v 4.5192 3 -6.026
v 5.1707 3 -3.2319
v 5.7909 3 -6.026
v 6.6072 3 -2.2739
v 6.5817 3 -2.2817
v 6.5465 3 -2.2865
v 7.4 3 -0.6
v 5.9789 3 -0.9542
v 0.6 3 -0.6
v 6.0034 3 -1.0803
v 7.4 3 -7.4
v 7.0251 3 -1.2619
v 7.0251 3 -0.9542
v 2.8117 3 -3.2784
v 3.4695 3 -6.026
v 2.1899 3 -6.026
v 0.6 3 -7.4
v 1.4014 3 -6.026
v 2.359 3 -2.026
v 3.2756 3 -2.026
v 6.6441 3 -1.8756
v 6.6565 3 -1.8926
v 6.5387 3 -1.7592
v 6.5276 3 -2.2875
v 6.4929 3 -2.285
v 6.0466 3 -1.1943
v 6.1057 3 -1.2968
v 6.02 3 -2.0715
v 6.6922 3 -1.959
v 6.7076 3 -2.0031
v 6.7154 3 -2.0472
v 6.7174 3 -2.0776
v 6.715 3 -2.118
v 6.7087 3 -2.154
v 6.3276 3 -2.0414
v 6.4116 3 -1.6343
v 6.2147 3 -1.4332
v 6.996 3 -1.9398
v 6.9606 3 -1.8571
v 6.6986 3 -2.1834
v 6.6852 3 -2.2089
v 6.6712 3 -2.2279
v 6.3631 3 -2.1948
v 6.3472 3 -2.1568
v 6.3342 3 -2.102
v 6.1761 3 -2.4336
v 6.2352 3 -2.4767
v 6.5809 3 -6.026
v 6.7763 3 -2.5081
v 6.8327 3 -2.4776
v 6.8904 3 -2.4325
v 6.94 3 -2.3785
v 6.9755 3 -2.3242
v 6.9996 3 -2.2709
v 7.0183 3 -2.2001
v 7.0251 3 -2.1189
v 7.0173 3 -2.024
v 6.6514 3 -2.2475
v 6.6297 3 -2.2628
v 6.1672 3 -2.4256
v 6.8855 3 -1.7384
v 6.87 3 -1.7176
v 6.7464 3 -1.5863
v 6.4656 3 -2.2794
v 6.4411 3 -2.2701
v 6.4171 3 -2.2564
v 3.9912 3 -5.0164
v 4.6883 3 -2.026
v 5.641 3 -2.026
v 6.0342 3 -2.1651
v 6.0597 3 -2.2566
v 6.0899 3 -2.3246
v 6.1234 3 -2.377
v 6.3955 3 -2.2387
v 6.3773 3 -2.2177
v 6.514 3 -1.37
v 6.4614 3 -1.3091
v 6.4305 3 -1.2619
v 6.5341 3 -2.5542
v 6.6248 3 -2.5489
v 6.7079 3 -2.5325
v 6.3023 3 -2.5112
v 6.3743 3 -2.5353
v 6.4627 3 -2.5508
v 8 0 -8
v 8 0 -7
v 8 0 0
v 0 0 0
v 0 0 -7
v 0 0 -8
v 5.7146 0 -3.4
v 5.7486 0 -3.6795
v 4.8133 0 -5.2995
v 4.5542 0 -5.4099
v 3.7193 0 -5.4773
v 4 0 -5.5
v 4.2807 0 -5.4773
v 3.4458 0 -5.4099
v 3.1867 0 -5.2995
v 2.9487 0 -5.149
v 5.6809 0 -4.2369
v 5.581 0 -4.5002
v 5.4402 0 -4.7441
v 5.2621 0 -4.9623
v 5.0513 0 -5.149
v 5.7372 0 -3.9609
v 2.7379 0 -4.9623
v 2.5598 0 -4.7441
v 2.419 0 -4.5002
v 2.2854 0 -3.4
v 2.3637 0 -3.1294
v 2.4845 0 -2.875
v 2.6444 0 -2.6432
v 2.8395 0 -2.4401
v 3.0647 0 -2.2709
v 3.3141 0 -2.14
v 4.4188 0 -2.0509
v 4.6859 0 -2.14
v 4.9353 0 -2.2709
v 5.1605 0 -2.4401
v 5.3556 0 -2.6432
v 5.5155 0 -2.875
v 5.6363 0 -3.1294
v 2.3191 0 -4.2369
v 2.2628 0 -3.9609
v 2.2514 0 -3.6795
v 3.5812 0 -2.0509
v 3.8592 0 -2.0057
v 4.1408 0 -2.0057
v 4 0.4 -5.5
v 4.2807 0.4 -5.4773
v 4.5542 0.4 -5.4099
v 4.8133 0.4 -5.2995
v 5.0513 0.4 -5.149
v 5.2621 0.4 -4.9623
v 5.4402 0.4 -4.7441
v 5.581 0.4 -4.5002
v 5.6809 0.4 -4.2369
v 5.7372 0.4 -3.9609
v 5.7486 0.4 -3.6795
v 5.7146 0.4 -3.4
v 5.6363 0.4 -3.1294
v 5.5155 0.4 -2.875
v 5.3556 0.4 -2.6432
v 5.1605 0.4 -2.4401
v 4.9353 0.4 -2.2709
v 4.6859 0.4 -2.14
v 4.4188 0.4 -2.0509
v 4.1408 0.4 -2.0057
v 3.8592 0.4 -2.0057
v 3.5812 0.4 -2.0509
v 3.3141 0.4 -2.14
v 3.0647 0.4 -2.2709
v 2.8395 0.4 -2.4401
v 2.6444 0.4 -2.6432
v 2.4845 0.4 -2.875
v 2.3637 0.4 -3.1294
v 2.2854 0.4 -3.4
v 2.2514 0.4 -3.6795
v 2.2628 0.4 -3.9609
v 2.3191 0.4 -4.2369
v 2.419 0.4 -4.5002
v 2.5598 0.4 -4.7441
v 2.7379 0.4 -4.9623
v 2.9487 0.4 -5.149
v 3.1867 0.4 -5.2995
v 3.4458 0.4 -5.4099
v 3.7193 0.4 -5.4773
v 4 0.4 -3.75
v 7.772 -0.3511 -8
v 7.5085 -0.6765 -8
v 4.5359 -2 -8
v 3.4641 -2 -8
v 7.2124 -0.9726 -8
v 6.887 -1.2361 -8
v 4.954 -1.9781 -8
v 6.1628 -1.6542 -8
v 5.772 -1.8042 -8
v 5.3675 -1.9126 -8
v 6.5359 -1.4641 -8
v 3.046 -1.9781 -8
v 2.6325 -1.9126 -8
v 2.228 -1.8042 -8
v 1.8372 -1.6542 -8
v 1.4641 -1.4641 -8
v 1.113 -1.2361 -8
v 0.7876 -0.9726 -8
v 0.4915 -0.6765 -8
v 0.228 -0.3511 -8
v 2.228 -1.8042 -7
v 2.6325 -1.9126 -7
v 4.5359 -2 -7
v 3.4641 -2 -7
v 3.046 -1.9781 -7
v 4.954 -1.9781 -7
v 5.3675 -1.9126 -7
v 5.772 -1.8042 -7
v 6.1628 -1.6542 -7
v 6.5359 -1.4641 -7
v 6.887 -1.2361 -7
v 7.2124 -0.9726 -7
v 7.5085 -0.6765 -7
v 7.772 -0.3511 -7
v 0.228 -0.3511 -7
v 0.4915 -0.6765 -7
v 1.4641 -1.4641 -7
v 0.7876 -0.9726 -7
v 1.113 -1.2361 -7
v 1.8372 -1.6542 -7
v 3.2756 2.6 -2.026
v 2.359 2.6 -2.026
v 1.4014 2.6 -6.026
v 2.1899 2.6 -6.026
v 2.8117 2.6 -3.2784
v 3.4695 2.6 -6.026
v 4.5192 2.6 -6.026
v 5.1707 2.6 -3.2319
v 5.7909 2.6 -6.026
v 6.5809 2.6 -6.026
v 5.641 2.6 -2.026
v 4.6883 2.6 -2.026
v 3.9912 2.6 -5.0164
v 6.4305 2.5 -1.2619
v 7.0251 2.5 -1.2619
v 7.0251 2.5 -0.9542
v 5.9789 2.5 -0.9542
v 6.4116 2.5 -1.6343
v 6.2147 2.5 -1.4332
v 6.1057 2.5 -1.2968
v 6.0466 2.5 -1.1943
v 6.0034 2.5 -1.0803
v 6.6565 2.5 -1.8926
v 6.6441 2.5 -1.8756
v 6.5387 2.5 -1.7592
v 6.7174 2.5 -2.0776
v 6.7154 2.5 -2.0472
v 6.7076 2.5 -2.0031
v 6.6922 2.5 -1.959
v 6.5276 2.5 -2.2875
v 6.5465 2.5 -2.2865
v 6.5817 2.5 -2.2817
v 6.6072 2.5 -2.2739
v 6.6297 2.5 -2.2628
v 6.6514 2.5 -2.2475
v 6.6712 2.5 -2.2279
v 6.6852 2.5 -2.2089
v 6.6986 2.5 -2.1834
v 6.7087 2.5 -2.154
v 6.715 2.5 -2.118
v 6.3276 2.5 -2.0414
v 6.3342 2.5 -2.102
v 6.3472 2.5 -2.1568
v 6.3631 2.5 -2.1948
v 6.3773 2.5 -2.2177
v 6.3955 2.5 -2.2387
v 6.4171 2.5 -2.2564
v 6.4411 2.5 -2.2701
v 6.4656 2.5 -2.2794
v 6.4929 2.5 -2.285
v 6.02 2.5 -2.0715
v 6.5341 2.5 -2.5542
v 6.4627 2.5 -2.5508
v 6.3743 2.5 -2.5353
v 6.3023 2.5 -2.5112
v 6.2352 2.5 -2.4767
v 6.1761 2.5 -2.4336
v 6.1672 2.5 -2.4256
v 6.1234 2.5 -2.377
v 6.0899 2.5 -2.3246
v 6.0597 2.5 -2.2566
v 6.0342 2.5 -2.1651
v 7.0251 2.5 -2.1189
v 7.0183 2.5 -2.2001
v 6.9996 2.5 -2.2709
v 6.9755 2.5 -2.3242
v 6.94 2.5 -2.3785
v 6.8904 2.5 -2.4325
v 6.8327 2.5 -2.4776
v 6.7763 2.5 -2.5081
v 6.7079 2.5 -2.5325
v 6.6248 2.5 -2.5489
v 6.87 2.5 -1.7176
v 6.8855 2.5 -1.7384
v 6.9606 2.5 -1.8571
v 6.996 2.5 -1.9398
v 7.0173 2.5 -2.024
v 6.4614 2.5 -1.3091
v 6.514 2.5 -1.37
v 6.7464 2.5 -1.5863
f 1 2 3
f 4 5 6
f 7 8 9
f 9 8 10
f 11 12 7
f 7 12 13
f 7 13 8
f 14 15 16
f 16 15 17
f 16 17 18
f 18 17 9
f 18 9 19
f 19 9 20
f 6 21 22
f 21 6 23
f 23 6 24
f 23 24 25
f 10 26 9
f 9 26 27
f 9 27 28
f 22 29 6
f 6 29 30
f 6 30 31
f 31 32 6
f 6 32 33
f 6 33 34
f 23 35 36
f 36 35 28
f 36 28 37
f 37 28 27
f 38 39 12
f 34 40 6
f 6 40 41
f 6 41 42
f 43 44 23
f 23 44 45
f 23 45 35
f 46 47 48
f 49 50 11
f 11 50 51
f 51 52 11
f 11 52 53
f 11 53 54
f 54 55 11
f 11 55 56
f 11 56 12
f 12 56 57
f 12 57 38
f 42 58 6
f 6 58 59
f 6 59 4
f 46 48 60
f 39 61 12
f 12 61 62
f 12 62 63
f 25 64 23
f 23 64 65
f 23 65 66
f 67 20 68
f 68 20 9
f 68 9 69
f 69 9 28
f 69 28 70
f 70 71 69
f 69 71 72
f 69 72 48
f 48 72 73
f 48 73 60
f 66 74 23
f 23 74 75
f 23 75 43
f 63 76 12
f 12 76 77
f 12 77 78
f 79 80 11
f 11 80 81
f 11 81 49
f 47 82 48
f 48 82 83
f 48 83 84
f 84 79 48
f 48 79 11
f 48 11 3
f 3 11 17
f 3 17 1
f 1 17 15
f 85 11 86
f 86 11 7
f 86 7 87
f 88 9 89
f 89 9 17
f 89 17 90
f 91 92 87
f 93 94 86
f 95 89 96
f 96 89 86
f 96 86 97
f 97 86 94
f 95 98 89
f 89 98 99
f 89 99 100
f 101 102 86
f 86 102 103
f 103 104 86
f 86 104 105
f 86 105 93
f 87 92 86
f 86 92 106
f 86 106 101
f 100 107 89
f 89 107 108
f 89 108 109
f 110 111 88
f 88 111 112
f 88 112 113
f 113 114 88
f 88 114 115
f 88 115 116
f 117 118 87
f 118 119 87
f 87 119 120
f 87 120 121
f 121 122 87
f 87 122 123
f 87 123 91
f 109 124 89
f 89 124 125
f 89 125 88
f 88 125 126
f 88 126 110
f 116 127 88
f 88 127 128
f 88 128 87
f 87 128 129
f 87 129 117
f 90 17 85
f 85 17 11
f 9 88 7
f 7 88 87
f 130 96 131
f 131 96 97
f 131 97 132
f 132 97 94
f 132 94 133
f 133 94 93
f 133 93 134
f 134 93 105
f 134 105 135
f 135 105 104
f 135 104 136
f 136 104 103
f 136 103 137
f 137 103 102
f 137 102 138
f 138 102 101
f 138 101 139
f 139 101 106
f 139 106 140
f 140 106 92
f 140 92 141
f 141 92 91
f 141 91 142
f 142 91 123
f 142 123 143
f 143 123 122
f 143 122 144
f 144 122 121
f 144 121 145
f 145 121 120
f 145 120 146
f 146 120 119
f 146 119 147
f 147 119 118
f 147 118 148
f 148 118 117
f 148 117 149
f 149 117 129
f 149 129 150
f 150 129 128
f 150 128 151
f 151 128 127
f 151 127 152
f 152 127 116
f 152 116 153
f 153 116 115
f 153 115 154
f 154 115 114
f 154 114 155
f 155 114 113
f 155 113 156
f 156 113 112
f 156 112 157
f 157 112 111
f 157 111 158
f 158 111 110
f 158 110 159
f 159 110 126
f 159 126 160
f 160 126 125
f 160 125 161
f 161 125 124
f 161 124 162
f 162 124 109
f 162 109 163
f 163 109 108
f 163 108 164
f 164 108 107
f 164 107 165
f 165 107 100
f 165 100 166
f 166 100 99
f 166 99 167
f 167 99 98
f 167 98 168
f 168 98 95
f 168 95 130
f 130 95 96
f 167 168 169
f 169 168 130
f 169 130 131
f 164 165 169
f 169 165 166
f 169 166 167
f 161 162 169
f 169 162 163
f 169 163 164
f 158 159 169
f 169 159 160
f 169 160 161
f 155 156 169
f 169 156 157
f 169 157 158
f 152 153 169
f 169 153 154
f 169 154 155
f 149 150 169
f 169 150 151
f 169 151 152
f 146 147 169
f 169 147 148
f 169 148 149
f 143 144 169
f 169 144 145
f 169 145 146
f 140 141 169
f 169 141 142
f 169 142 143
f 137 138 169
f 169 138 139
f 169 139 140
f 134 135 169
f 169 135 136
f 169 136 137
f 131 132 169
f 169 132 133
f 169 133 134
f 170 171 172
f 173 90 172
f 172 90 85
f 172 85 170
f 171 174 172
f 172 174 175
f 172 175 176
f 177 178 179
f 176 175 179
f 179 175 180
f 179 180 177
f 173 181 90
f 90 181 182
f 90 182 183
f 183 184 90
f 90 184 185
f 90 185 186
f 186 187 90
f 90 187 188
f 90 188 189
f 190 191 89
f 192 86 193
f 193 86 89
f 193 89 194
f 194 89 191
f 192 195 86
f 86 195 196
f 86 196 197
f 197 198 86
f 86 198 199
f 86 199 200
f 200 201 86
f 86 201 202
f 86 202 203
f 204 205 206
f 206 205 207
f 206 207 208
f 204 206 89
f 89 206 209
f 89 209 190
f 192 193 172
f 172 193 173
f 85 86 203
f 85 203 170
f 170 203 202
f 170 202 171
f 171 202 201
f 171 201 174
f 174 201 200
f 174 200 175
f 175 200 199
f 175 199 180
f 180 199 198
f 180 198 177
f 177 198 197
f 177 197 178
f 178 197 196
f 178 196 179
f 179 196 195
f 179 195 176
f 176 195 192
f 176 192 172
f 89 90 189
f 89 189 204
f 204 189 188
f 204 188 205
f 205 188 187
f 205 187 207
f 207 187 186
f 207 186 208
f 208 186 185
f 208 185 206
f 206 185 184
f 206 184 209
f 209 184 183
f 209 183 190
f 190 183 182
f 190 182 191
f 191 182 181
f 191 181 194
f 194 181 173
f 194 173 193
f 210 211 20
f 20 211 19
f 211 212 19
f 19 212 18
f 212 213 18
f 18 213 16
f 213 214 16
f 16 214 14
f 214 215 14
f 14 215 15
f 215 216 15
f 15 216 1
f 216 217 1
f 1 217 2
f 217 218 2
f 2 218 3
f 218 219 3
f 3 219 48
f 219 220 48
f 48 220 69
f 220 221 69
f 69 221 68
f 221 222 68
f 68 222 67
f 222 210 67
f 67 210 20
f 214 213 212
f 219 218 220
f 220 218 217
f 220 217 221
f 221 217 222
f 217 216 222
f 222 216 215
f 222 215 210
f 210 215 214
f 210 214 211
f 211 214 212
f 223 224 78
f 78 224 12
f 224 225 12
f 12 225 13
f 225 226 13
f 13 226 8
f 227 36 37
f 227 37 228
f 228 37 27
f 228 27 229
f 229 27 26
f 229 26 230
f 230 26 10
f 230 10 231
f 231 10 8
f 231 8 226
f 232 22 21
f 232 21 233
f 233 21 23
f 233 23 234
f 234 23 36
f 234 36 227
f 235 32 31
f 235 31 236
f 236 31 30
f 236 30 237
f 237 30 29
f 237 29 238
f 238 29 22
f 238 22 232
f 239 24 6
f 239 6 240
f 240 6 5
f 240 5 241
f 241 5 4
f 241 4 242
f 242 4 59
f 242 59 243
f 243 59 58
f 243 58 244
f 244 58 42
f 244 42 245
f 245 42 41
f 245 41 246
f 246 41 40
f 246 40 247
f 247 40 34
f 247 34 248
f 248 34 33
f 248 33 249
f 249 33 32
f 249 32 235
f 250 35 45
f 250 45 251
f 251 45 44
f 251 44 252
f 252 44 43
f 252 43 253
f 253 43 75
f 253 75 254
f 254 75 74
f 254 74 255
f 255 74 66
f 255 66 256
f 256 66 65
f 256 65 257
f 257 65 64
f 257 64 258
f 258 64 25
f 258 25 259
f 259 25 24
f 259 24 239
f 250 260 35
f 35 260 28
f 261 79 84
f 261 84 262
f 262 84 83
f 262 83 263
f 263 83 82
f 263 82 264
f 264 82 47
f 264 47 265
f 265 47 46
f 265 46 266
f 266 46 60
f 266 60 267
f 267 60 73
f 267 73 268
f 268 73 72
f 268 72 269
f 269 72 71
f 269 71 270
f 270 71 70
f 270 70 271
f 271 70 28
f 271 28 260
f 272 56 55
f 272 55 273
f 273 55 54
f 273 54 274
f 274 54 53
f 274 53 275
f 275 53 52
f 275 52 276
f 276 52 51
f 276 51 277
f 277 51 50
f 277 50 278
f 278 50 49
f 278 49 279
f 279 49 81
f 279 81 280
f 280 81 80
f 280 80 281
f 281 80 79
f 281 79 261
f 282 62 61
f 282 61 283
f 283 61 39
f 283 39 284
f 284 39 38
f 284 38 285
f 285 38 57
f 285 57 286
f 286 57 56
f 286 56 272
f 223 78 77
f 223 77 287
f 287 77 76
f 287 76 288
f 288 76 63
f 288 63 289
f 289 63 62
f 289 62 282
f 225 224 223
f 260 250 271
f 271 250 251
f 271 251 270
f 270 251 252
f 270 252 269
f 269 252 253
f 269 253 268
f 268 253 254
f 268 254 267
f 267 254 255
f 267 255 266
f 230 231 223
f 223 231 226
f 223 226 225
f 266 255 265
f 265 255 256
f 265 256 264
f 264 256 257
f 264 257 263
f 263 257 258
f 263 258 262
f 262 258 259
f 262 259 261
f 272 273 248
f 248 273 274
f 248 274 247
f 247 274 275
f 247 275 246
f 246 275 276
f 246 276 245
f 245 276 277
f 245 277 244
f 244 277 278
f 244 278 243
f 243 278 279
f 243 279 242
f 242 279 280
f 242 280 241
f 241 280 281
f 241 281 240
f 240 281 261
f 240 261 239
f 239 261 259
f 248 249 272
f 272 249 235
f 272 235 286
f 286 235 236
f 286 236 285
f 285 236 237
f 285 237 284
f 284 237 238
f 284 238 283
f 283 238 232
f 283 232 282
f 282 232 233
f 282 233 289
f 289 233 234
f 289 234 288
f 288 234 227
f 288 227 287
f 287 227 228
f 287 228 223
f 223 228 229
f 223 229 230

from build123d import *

# Parameters (mm, degrees)
SKETCH1_W               = 8
SKETCH1_H               = 8
BOSS_EXTRUDE1_DEPTH     = 3
CUT_EXTRUDE1_DEPTH      = 12.704699911
CUT_EXTRUDE1_DEPTH_BACK = 12.704699911
CUT_EXTRUDE2_DEPTH      = 11
SKETCH4_R               = 1.75
CUT_EXTRUDE3_DEPTH      = 0.4
SKETCH5_W               = 8
SKETCH5_H               = 1
BOSS_EXTRUDE2_DEPTH     = 2
FILLET1_R               = 4
CUT_EXTRUDE4_DEPTH      = 0.4
CUT_EXTRUDE5_DEPTH      = 0.5


with BuildPart() as part:
    # Sketch1 → Boss-Extrude1 (new body)
    with BuildSketch(Plane(origin=(0, 0, 0), x_dir=(1, 0, 0), z_dir=(0, 1, 0))):
        with Locations((4, 4)):
            Rectangle(SKETCH1_W, SKETCH1_H)
    extrude(amount=BOSS_EXTRUDE1_DEPTH)

    # Sketch2 → Cut-Extrude1 (cut, two sides: drawn at the far end of the back side and taken through both)
    with BuildSketch(Plane.XY.offset(-CUT_EXTRUDE1_DEPTH_BACK)):
        Polygon((0, 0), (0.6, 3), (0, 3), align=None)
        Polygon((8, 0), (7.4, 3), (8, 3), align=None)
    extrude(amount=CUT_EXTRUDE1_DEPTH + CUT_EXTRUDE1_DEPTH_BACK, mode=Mode.SUBTRACT)

    # Sketch3 → Cut-Extrude2 (cut)
    with BuildSketch(Plane(origin=(0, 0, 0), x_dir=(0, 0, -1), z_dir=(1, 0, 0))):
        Polygon((0, 0), (0.6, 3), (0, 3), align=None)
        Polygon((8, 3), (7.4, 3), (8, 0), align=None)
    extrude(amount=CUT_EXTRUDE2_DEPTH, mode=Mode.SUBTRACT)

    # Sketch4 → Cut-Extrude3 (cut)
    with BuildSketch(Plane.XZ):
        with Locations(Location((4, -3.75, 0), (0, 0, 270))):
            Circle(SKETCH4_R)
    extrude(amount=-CUT_EXTRUDE3_DEPTH, mode=Mode.SUBTRACT)

    # Sketch5 → Boss-Extrude2 (add)
    with BuildSketch(Plane.XZ):
        with Locations((4, -7.5)):
            Rectangle(SKETCH5_W, SKETCH5_H)
    extrude(amount=BOSS_EXTRUDE2_DEPTH)

    # Fillet1
    # the kernel refuses this fillet: 4 mm, written as the material it takes off along each edge
    with BuildSketch(Plane(origin=(8, -2, -16.660254038), x_dir=(0, 1, 0), z_dir=(0, 0, 1)), Plane(origin=(0, -2, 1.660254038), x_dir=(0, 1, 0), z_dir=(0, 0, -1))) as fillet1_piece_1:
        with BuildLine():
            CenterArc((4, 3.464101615), FILLET1_R, 180, 60)
            Line((0, 3.464101615), (-0.08, 3.464101615))
            Line((-0.08, 3.464101615), (-0.08, 0))
            Line((-0.08, 0), (0, -0.08))
            ThreePointArc((0, -0.08), (1, -0.08), (1.96, -0.069282032))
            Line((1.96, -0.069282032), (2, 0))
        make_face()
    extrude(amount=18.320508076, mode=Mode.SUBTRACT)

    # Sketch6 → Cut-Extrude4 (cut)
    with BuildSketch(Plane(origin=(0, 3, 0), x_dir=(1, 0, 0), z_dir=(0, 1, 0))):
        Polygon((2.358967796, 2.025988971), (1.401435745, 6.025988971), (2.189897284, 6.025988971), (2.811692155, 3.278392817), (3.469544719, 6.025988971), (4.519224207, 6.025988971), (5.170666514, 3.231918458), (5.790858822, 6.025988971), (6.580922925, 6.025988971), (5.641019078, 2.025988971), (4.688294719, 2.025988971), (3.991179335, 5.016373586), (3.275634463, 2.025988971), align=None)
    extrude(amount=-CUT_EXTRUDE4_DEPTH, mode=Mode.SUBTRACT)

    # Sketch7 → Cut-Extrude5 (cut)
    with BuildSketch(Plane(origin=(0, 3, 0), x_dir=(1, 0, 0), z_dir=(0, 1, 0))):
        with BuildLine():
            Line((7.025079926, 1.261869909), (7.025079926, 0.954177602))
            Line((7.025079926, 0.954177602), (5.978926079, 0.954177602))
            add(Edge.make_bspline(
                [(5.978926079, 0.954177602), (5.982468114, 0.980474374), (5.989550197, 1.033053173), (6.011445466, 1.109857564), (6.040668149, 1.184805528), (6.072383822, 1.245794978), (6.103928572, 1.294889387), (6.132549124, 1.335117725), (6.166692393, 1.37791895), (6.205862922, 1.423638586), (6.249844239, 1.472419552), (6.298964472, 1.524080492), (6.353457933, 1.578374089), (6.391795053, 1.615242112), (6.411618387, 1.634305807)],
                knots=[0, 0, 0, 0, 1.156289446, 2.311930546, 3.473459201, 4.661751613, 5.303057008, 6.018253237, 6.81459331, 7.690699809, 8.644447906, 9.679642995, 10.800191253, 12, 12, 12, 12], degree=3))
            add(Edge.make_bspline(
                [(6.411618387, 1.634305807), (6.427437635, 1.649575712), (6.457552822, 1.678645113), (6.500436909, 1.720271317), (6.538136439, 1.758537631), (6.571439659, 1.79245241), (6.599577217, 1.822879209), (6.622919237, 1.849340182), (6.641761343, 1.871943086), (6.651966244, 1.886282382), (6.656490182, 1.89263914)],
                knots=[0, 0, 0, 0, 1.480720495, 2.818855715, 4.024636094, 5.098235712, 6.019786162, 6.815086302, 7.474715479, 8, 8, 8, 8], degree=3))
            add(Edge.make_bspline(
                [(6.656490182, 1.89263914), (6.665754103, 1.908027503), (6.683623134, 1.937709873), (6.703218009, 1.984385935), (6.714979583, 2.031052356), (6.71659359, 2.062234592), (6.717387618, 2.077575038)],
                knots=[0, 0, 0, 0, 1.0911822, 2.104764037, 3.067617678, 4, 4, 4, 4], degree=3))
            add(Edge.make_bspline(
                [(6.717387618, 2.077575038), (6.716811351, 2.093538834), (6.7157211, 2.123741092), (6.706579153, 2.166362064), (6.690367393, 2.203000826), (6.668046783, 2.233769843), (6.639822327, 2.257877251), (6.606827118, 2.275690284), (6.568578157, 2.285538571), (6.541694532, 2.286833928), (6.527644028, 2.287510935)],
                knots=[0, 0, 0, 0, 1.193122327, 2.257294386, 3.237245624, 4.168877528, 5.075331632, 5.990371598, 6.949684428, 8, 8, 8, 8], degree=3))
            add(Edge.make_bspline(
                [(6.527644028, 2.287510935), (6.513688449, 2.286878661), (6.486729282, 2.285657243), (6.448414457, 2.274987105), (6.414896057, 2.256515974), (6.391009062, 2.235466338), (6.374872264, 2.214997095), (6.363877213, 2.197159499), (6.354400337, 2.17689052), (6.346003035, 2.154418352), (6.339370115, 2.129485554), (6.334028373, 2.102282013), (6.329723702, 2.072661336), (6.328354741, 2.052055079), (6.327644028, 2.041357089)],
                knots=[0, 0, 0, 0, 1.402788338, 2.709884207, 3.961032948, 5.225417836, 5.883680772, 6.578928686, 7.329201998, 8.132101139, 8.990263233, 9.922304639, 10.921339128, 12, 12, 12, 12], degree=3))
            Line((6.327644028, 2.041357089), (6.01995172, 2.071485294))
            add(Edge.make_bspline(
                [(6.01995172, 2.071485294), (6.022425519, 2.092258403), (6.027221819, 2.132534142), (6.039191066, 2.190383991), (6.054349674, 2.243753088), (6.073420305, 2.292542389), (6.095614746, 2.337062147), (6.122065099, 2.376644317), (6.15184716, 2.411727355), (6.184986668, 2.44229259), (6.221272944, 2.468437258), (6.259348879, 2.491775386), (6.299958585, 2.510920071), (6.342654946, 2.526698167), (6.387418668, 2.539307895), (6.434456788, 2.547645276), (6.483479006, 2.553509822), (6.516941776, 2.553951654), (6.534054285, 2.554177602)],
                knots=[0, 0, 0, 0, 1.270971563, 2.464210789, 3.586263665, 4.638946707, 5.643716971, 6.603612468, 7.52484387, 8.434700188, 9.336036235, 10.239171475, 11.145359471, 12.059630629, 13.003312604, 13.96741569, 14.960557767, 16, 16, 16, 16], degree=3))
            add(Edge.make_bspline(
                [(6.534054285, 2.554177602), (6.552657792, 2.553820052), (6.58889046, 2.553123679), (6.641783721, 2.547373025), (6.69147314, 2.537345926), (6.738393137, 2.524063615), (6.782061867, 2.506330758), (6.82284322, 2.484892472), (6.860095371, 2.458935129), (6.894373612, 2.429874295), (6.925015616, 2.397916799), (6.95185524, 2.363828728), (6.974341388, 2.327633829), (6.993210719, 2.289773279), (7.007221071, 2.249637846), (7.017429622, 2.207782494), (7.024198302, 2.164011958), (7.024782801, 2.134117674), (7.025079926, 2.118921192)],
                knots=[0, 0, 0, 0, 1.210756838, 2.35810096, 3.457354827, 4.507168606, 5.527358126, 6.519769748, 7.499700793, 8.476517721, 9.440526811, 10.376769937, 11.295256217, 12.209626307, 13.124630862, 14.055668209, 15.011616881, 16, 16, 16, 16], degree=3))
            add(Edge.make_bspline(
                [(7.025079926, 2.118921192), (7.024688468, 2.101480457), (7.023911876, 2.066880717), (7.016476584, 2.015731964), (7.005116907, 1.965762694), (6.988328197, 1.916850789), (6.967047205, 1.867822963), (6.939615495, 1.818569171), (6.907765206, 1.767604004), (6.882827684, 1.7346528), (6.86995172, 1.71763914)],
                knots=[0, 0, 0, 0, 0.953409949, 1.89141903, 2.821310783, 3.752688675, 4.715703262, 5.740811754, 6.833515735, 8, 8, 8, 8], degree=3))
            add(Edge.make_bspline(
                [(6.86995172, 1.71763914), (6.865085171, 1.711509707), (6.854662151, 1.698381883), (6.836929855, 1.678252394), (6.816379649, 1.656264646), (6.793301796, 1.632007081), (6.766933989, 1.606338723), (6.738224942, 1.578186143), (6.705911376, 1.548989439), (6.672442351, 1.518020294), (6.638827847, 1.487878461), (6.607931272, 1.459250402), (6.579866901, 1.433920718), (6.555941744, 1.410491095), (6.534748531, 1.390560588), (6.517051134, 1.373107183), (6.502518393, 1.358553413), (6.482493212, 1.335867777), (6.457013442, 1.305185447), (6.439087381, 1.275867612), (6.430528644, 1.261869909)],
                knots=[0, 0, 0, 0, 0.665555651, 1.425465941, 2.280616993, 3.225313414, 4.272635571, 5.410053715, 6.644756443, 7.976022804, 9.288331007, 10.484517221, 11.558462543, 12.503158964, 13.33222979, 14.032602617, 14.617328242, 15.080653724, 16.606167857, 18, 18, 18, 18], degree=3))
            Line((6.430528644, 1.261869909), (7.025079926, 1.261869909))
        make_face()
    extrude(amount=-CUT_EXTRUDE5_DEPTH, mode=Mode.SUBTRACT)


solid = part.part
